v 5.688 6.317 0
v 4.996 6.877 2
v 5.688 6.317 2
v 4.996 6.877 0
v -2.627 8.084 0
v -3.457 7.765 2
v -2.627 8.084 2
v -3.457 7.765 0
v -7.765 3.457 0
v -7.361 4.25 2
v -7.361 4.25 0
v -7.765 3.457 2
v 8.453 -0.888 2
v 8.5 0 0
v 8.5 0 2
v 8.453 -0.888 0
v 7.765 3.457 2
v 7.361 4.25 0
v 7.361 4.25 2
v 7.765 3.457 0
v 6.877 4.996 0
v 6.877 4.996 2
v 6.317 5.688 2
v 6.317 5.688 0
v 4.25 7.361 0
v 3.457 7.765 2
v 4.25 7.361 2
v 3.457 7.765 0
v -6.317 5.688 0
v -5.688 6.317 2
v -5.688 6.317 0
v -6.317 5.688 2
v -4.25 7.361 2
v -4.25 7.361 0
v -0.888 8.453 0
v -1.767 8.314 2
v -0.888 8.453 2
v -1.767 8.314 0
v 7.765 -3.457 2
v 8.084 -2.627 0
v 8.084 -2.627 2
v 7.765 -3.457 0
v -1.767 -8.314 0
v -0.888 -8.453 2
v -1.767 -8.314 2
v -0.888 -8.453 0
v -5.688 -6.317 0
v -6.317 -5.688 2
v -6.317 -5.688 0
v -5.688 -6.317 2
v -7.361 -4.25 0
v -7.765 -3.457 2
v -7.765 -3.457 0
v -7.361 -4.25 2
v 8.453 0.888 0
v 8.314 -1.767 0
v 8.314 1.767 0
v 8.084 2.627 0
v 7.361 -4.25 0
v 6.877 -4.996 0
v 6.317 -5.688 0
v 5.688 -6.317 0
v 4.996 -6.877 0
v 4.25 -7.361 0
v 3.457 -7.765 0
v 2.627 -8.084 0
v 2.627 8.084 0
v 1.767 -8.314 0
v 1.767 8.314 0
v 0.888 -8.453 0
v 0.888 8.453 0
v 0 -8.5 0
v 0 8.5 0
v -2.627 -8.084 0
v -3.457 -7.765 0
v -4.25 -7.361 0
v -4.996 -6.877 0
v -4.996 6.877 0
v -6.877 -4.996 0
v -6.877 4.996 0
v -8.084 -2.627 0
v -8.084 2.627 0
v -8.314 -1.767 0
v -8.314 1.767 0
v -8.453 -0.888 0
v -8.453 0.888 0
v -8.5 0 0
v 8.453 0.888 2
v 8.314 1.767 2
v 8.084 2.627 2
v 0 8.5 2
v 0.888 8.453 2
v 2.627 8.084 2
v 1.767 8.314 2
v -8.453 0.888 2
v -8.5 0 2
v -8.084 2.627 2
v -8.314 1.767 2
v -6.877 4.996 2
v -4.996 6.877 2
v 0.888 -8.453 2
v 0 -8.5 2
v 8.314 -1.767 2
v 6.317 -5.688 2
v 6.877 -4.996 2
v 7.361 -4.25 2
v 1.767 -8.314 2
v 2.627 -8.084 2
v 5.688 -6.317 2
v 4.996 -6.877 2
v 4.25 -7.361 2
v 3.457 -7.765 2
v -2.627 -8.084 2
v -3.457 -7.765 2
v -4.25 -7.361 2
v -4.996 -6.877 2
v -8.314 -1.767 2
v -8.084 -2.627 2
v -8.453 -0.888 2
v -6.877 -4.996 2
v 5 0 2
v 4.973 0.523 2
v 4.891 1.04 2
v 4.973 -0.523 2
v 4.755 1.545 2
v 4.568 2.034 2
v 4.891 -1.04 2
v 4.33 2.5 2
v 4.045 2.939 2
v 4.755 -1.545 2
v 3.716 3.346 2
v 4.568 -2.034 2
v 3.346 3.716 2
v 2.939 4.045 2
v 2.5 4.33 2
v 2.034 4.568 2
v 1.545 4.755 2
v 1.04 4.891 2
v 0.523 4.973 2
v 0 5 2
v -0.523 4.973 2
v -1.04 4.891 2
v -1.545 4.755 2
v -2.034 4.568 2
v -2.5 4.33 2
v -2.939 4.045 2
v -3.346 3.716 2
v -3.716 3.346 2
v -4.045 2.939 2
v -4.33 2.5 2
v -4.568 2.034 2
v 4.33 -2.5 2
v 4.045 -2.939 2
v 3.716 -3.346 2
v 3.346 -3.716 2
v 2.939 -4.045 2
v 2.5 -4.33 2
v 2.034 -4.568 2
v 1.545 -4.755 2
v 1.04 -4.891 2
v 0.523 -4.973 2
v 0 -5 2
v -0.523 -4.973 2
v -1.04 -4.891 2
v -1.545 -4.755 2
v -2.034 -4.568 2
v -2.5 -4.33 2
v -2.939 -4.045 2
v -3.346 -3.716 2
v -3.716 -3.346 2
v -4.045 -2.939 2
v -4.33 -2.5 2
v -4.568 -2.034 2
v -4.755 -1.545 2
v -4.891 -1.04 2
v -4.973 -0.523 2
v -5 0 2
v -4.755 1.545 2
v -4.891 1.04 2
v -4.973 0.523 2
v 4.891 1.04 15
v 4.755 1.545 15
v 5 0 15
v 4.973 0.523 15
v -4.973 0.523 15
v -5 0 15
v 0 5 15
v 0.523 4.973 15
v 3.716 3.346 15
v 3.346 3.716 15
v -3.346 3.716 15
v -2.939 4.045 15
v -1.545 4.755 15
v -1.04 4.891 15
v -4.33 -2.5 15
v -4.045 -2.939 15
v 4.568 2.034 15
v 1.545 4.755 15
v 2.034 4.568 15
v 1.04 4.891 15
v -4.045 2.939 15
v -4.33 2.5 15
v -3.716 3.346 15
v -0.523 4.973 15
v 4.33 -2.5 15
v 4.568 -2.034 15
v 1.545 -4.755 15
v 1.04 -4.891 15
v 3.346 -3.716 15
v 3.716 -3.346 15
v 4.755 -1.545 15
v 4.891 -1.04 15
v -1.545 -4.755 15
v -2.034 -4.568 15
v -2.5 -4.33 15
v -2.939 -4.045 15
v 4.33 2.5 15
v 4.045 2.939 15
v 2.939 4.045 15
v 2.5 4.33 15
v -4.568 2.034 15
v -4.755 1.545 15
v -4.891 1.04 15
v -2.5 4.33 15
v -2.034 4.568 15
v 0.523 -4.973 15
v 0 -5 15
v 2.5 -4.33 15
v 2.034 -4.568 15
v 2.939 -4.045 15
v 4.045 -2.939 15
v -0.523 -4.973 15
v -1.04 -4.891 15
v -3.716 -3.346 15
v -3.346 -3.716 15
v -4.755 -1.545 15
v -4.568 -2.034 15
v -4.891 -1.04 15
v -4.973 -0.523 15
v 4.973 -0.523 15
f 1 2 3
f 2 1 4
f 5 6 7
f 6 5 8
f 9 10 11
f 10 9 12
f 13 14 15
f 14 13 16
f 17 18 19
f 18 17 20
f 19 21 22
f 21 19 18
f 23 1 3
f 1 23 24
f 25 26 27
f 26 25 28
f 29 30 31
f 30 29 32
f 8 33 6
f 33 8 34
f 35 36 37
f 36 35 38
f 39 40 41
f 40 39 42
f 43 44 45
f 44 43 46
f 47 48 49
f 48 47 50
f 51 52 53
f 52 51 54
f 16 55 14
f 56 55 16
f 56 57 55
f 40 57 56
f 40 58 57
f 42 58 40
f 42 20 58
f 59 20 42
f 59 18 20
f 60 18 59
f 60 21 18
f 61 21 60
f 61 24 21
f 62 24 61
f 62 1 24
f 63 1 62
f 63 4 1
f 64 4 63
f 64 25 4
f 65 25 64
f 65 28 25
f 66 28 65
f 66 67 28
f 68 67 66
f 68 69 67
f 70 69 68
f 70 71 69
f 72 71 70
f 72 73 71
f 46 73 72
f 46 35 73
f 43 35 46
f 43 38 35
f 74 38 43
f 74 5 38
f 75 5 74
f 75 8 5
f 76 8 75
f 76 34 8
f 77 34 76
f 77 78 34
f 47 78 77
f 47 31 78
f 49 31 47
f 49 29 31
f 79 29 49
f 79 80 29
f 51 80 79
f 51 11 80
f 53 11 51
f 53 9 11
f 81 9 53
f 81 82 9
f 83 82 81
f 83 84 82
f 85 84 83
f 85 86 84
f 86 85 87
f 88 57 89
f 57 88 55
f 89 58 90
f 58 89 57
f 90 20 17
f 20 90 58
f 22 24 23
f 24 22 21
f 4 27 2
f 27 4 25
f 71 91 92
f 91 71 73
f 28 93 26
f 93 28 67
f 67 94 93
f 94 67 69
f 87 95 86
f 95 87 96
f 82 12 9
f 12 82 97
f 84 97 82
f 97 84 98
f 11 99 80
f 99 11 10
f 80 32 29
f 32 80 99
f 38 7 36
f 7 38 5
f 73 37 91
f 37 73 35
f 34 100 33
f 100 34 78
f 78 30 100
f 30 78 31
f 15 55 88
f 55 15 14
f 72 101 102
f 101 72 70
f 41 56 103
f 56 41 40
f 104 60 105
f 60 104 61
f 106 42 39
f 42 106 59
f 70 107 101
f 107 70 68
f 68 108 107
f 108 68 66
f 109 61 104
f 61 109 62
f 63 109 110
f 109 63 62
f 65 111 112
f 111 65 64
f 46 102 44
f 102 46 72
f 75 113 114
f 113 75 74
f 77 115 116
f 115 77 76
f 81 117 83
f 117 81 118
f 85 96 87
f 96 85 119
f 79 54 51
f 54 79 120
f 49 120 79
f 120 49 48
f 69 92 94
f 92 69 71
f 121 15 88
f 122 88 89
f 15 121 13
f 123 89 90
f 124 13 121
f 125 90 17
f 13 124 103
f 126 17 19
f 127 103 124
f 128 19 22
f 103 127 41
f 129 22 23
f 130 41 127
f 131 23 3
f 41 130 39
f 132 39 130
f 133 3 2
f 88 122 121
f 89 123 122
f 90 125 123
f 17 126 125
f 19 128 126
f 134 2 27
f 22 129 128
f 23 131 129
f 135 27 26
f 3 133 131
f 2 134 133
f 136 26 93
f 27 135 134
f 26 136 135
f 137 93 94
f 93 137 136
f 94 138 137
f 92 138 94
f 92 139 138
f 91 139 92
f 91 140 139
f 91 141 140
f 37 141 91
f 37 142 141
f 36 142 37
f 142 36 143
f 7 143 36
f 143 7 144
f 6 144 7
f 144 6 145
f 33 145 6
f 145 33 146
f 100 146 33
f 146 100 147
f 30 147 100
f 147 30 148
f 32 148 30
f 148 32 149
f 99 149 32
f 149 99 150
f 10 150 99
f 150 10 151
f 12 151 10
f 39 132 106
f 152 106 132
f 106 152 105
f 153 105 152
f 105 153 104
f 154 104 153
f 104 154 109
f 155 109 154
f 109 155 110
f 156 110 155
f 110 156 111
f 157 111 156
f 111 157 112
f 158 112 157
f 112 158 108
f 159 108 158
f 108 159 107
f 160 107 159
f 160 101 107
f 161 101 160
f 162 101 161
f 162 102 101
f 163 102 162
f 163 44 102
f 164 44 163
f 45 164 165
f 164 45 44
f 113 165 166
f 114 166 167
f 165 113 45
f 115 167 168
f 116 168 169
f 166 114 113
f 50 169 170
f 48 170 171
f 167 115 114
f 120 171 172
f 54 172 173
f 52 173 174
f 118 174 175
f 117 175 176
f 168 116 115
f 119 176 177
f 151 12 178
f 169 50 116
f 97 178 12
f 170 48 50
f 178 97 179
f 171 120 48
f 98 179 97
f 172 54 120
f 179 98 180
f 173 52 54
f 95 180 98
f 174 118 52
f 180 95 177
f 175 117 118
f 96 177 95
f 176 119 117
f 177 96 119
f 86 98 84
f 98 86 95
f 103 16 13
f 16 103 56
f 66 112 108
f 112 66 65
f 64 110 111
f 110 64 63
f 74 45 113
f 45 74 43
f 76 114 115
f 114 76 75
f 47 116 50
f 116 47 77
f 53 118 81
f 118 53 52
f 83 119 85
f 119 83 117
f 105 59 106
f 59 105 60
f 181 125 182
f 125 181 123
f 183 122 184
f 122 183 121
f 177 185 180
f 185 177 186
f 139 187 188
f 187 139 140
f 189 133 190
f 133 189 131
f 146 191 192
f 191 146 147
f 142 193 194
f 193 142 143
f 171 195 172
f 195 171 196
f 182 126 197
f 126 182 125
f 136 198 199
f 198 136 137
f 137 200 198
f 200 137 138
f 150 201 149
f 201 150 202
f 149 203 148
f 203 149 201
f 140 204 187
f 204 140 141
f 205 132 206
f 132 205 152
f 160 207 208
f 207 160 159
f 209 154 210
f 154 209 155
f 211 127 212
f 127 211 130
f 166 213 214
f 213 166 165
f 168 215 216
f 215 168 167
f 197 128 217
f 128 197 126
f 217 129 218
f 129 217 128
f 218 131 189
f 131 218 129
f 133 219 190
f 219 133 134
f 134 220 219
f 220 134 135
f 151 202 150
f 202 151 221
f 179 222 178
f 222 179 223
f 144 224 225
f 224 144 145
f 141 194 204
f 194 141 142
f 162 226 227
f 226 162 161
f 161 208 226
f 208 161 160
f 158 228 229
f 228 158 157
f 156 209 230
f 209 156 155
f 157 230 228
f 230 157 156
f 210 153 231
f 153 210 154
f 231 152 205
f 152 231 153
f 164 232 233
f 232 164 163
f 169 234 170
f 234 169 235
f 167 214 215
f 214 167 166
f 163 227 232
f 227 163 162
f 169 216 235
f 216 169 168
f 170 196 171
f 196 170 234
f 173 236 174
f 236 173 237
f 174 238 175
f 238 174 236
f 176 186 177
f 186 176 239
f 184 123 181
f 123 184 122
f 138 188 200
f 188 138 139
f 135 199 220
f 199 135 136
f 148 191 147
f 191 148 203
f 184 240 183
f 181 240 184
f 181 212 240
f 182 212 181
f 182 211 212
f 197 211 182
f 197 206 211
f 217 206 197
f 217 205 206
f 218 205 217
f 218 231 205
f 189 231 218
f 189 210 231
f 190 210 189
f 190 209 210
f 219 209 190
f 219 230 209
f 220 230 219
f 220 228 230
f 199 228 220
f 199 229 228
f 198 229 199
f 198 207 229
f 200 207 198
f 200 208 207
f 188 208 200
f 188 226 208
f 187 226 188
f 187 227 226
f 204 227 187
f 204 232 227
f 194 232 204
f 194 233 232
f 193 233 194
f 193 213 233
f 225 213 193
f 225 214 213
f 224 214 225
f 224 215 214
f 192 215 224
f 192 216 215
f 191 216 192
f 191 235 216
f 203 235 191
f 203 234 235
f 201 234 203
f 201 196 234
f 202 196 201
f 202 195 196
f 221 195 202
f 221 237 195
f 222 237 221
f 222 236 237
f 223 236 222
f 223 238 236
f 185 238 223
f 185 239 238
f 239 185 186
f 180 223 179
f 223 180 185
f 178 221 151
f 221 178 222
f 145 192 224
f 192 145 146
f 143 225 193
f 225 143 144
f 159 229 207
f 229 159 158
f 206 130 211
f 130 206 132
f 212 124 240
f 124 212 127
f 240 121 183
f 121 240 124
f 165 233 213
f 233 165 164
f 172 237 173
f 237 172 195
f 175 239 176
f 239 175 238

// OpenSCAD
$fn = 60;
cylinder(d = 17, h = 2);
cylinder(d = 10, h = 15);
